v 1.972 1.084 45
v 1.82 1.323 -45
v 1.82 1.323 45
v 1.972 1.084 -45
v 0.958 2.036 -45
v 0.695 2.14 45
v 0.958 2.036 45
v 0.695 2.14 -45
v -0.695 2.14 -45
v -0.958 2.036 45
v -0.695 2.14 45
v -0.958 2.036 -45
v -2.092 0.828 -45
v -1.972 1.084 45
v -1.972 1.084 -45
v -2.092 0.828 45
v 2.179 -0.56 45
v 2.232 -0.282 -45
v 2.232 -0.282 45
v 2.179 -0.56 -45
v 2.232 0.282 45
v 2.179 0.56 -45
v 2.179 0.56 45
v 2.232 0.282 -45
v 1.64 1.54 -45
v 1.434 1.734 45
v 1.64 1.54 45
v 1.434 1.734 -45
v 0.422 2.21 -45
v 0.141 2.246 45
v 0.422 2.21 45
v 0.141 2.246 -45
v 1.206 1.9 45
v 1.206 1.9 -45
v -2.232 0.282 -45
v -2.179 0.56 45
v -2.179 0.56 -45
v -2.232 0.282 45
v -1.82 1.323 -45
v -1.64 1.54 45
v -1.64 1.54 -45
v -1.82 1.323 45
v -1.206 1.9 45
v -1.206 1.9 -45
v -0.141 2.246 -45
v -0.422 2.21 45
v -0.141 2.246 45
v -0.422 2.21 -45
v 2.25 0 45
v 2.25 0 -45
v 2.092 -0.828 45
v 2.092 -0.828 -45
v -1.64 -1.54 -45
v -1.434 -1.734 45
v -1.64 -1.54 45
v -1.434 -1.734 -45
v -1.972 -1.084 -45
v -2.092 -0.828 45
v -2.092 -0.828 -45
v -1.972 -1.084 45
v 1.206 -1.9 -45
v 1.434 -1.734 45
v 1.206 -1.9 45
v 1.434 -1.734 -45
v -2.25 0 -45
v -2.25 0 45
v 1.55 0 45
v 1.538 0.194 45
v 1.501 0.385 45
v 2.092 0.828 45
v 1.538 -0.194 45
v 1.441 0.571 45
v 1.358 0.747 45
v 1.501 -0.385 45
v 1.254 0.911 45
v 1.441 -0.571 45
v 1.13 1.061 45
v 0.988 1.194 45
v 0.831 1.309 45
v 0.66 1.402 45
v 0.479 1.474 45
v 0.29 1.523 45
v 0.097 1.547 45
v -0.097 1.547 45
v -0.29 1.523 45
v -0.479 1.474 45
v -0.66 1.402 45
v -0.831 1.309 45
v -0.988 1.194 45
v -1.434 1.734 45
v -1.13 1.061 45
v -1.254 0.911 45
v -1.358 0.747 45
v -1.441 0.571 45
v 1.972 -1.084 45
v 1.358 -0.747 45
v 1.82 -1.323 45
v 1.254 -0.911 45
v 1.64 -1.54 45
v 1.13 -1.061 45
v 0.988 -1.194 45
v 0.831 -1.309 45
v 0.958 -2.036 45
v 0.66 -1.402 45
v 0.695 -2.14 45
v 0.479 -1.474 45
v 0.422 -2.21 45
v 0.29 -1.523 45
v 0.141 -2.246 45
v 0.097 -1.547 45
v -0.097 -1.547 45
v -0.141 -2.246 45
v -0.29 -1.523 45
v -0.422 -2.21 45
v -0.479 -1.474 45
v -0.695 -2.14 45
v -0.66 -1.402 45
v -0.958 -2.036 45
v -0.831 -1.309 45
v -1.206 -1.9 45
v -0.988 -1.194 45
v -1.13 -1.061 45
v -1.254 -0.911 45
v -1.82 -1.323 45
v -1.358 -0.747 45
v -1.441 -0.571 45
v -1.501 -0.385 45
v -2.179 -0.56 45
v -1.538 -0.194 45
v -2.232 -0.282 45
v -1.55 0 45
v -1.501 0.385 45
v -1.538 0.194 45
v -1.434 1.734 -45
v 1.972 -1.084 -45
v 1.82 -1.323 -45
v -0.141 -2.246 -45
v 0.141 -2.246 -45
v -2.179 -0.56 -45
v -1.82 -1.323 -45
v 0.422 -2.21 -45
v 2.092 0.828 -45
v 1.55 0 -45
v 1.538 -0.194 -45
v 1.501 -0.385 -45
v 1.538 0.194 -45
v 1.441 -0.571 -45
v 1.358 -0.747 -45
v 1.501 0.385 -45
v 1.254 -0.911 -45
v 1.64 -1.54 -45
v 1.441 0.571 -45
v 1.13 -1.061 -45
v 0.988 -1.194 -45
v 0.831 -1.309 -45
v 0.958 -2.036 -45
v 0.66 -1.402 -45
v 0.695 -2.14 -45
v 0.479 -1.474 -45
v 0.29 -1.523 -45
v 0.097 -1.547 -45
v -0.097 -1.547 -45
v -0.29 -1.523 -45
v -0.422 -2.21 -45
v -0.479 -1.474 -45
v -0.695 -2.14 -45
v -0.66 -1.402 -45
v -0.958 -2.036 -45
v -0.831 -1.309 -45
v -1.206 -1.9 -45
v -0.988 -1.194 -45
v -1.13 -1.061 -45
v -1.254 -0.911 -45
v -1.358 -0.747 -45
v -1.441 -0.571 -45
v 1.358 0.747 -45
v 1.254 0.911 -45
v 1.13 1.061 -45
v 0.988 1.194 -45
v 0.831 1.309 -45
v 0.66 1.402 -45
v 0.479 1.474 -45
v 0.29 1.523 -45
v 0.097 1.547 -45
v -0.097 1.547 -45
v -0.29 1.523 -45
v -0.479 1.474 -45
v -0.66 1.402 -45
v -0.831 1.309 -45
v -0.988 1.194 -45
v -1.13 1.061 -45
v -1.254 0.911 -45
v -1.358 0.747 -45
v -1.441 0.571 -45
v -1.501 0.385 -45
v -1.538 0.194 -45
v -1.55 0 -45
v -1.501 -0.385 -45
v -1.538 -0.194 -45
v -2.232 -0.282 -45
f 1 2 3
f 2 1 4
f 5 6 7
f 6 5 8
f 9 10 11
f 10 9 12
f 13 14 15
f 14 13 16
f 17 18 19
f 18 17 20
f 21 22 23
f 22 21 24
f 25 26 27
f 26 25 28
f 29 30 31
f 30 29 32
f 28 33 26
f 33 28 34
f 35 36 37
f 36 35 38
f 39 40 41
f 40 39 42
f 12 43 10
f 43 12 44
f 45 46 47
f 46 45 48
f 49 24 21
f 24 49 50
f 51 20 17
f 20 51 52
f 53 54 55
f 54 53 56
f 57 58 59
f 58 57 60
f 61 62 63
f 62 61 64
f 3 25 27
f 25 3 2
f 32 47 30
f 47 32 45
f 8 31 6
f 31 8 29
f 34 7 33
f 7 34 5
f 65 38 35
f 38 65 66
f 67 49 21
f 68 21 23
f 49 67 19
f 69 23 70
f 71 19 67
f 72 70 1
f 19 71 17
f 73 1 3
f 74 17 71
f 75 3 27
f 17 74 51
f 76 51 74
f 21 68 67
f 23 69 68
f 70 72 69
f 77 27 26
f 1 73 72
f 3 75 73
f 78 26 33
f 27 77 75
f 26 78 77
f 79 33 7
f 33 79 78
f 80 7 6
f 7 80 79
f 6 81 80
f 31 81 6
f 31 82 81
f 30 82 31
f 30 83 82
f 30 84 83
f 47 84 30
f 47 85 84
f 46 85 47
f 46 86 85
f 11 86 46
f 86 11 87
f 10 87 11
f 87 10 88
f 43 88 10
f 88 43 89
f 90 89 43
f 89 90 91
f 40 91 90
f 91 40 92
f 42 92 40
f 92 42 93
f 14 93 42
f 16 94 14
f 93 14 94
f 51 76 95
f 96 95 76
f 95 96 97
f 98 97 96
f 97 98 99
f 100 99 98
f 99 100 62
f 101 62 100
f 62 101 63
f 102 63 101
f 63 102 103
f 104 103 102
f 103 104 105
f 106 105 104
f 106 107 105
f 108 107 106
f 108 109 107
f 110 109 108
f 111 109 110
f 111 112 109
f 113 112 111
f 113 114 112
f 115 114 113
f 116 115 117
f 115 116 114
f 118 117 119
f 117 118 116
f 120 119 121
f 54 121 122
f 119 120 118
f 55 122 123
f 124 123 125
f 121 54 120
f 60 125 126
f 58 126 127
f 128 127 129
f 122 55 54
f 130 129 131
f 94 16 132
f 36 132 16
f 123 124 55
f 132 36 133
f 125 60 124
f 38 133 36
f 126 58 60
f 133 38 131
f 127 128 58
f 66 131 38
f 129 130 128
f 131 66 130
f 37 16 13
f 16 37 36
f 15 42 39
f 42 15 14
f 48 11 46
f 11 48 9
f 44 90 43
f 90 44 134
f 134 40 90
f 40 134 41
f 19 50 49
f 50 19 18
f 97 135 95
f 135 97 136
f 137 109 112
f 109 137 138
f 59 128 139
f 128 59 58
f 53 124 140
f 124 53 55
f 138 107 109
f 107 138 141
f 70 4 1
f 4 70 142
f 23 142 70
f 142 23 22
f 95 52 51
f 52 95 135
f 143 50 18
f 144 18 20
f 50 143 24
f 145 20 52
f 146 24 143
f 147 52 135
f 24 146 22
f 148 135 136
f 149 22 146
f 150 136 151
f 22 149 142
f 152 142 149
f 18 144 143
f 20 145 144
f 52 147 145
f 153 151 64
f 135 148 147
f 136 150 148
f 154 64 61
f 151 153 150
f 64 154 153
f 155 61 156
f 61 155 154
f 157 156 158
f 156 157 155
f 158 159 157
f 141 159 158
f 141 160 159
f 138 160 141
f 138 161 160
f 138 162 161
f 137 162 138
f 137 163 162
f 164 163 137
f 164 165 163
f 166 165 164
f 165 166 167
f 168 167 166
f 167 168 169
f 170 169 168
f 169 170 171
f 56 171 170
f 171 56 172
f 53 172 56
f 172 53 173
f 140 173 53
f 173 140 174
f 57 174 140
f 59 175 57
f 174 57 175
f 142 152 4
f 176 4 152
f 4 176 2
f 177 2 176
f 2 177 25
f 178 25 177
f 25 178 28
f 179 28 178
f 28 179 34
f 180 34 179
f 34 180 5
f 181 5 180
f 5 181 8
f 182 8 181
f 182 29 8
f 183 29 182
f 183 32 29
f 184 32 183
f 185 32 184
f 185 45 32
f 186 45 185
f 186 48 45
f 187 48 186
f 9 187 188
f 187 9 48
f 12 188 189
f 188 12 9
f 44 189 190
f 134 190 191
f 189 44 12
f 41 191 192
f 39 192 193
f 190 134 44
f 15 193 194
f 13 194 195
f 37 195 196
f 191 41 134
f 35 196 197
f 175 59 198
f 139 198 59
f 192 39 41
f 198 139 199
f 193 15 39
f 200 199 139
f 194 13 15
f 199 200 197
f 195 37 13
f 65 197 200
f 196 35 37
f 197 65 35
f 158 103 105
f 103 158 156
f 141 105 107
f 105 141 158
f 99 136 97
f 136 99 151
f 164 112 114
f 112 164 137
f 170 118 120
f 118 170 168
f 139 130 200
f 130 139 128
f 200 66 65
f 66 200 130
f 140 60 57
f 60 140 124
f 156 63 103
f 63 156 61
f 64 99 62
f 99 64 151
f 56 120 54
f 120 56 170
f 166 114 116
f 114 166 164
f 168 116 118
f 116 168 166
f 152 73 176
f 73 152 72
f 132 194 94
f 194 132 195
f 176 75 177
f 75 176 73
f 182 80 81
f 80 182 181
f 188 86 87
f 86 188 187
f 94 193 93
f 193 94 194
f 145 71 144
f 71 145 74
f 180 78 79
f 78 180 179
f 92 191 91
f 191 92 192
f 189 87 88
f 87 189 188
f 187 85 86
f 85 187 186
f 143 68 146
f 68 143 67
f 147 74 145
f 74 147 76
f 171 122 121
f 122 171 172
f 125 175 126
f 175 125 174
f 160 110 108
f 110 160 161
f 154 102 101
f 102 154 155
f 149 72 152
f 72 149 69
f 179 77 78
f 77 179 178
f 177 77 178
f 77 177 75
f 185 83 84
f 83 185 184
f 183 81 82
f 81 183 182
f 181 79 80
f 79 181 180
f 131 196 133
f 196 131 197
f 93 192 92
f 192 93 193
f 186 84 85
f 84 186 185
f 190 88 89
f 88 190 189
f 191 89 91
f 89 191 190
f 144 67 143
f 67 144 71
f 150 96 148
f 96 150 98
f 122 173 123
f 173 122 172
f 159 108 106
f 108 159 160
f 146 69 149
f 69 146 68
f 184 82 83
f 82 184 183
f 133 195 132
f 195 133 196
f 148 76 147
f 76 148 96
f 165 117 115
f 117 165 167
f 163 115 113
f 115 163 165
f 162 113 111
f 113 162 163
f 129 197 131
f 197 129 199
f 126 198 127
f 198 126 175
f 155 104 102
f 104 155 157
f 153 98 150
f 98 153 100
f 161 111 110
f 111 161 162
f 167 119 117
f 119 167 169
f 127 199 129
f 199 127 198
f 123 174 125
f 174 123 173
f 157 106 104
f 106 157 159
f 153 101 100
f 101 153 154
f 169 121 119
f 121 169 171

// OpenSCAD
$fn = 50;


difference() {
	union() {
		translate(v = [0, 0, -45.0000000000]) {
			cylinder(h = 90, r = 2.2500000000);
		}
	}
	union() {
		translate(v = [0, 0, -100.0000000000]) {
			cylinder(h = 200, r = 1.5500000000);
		}
	}
}
